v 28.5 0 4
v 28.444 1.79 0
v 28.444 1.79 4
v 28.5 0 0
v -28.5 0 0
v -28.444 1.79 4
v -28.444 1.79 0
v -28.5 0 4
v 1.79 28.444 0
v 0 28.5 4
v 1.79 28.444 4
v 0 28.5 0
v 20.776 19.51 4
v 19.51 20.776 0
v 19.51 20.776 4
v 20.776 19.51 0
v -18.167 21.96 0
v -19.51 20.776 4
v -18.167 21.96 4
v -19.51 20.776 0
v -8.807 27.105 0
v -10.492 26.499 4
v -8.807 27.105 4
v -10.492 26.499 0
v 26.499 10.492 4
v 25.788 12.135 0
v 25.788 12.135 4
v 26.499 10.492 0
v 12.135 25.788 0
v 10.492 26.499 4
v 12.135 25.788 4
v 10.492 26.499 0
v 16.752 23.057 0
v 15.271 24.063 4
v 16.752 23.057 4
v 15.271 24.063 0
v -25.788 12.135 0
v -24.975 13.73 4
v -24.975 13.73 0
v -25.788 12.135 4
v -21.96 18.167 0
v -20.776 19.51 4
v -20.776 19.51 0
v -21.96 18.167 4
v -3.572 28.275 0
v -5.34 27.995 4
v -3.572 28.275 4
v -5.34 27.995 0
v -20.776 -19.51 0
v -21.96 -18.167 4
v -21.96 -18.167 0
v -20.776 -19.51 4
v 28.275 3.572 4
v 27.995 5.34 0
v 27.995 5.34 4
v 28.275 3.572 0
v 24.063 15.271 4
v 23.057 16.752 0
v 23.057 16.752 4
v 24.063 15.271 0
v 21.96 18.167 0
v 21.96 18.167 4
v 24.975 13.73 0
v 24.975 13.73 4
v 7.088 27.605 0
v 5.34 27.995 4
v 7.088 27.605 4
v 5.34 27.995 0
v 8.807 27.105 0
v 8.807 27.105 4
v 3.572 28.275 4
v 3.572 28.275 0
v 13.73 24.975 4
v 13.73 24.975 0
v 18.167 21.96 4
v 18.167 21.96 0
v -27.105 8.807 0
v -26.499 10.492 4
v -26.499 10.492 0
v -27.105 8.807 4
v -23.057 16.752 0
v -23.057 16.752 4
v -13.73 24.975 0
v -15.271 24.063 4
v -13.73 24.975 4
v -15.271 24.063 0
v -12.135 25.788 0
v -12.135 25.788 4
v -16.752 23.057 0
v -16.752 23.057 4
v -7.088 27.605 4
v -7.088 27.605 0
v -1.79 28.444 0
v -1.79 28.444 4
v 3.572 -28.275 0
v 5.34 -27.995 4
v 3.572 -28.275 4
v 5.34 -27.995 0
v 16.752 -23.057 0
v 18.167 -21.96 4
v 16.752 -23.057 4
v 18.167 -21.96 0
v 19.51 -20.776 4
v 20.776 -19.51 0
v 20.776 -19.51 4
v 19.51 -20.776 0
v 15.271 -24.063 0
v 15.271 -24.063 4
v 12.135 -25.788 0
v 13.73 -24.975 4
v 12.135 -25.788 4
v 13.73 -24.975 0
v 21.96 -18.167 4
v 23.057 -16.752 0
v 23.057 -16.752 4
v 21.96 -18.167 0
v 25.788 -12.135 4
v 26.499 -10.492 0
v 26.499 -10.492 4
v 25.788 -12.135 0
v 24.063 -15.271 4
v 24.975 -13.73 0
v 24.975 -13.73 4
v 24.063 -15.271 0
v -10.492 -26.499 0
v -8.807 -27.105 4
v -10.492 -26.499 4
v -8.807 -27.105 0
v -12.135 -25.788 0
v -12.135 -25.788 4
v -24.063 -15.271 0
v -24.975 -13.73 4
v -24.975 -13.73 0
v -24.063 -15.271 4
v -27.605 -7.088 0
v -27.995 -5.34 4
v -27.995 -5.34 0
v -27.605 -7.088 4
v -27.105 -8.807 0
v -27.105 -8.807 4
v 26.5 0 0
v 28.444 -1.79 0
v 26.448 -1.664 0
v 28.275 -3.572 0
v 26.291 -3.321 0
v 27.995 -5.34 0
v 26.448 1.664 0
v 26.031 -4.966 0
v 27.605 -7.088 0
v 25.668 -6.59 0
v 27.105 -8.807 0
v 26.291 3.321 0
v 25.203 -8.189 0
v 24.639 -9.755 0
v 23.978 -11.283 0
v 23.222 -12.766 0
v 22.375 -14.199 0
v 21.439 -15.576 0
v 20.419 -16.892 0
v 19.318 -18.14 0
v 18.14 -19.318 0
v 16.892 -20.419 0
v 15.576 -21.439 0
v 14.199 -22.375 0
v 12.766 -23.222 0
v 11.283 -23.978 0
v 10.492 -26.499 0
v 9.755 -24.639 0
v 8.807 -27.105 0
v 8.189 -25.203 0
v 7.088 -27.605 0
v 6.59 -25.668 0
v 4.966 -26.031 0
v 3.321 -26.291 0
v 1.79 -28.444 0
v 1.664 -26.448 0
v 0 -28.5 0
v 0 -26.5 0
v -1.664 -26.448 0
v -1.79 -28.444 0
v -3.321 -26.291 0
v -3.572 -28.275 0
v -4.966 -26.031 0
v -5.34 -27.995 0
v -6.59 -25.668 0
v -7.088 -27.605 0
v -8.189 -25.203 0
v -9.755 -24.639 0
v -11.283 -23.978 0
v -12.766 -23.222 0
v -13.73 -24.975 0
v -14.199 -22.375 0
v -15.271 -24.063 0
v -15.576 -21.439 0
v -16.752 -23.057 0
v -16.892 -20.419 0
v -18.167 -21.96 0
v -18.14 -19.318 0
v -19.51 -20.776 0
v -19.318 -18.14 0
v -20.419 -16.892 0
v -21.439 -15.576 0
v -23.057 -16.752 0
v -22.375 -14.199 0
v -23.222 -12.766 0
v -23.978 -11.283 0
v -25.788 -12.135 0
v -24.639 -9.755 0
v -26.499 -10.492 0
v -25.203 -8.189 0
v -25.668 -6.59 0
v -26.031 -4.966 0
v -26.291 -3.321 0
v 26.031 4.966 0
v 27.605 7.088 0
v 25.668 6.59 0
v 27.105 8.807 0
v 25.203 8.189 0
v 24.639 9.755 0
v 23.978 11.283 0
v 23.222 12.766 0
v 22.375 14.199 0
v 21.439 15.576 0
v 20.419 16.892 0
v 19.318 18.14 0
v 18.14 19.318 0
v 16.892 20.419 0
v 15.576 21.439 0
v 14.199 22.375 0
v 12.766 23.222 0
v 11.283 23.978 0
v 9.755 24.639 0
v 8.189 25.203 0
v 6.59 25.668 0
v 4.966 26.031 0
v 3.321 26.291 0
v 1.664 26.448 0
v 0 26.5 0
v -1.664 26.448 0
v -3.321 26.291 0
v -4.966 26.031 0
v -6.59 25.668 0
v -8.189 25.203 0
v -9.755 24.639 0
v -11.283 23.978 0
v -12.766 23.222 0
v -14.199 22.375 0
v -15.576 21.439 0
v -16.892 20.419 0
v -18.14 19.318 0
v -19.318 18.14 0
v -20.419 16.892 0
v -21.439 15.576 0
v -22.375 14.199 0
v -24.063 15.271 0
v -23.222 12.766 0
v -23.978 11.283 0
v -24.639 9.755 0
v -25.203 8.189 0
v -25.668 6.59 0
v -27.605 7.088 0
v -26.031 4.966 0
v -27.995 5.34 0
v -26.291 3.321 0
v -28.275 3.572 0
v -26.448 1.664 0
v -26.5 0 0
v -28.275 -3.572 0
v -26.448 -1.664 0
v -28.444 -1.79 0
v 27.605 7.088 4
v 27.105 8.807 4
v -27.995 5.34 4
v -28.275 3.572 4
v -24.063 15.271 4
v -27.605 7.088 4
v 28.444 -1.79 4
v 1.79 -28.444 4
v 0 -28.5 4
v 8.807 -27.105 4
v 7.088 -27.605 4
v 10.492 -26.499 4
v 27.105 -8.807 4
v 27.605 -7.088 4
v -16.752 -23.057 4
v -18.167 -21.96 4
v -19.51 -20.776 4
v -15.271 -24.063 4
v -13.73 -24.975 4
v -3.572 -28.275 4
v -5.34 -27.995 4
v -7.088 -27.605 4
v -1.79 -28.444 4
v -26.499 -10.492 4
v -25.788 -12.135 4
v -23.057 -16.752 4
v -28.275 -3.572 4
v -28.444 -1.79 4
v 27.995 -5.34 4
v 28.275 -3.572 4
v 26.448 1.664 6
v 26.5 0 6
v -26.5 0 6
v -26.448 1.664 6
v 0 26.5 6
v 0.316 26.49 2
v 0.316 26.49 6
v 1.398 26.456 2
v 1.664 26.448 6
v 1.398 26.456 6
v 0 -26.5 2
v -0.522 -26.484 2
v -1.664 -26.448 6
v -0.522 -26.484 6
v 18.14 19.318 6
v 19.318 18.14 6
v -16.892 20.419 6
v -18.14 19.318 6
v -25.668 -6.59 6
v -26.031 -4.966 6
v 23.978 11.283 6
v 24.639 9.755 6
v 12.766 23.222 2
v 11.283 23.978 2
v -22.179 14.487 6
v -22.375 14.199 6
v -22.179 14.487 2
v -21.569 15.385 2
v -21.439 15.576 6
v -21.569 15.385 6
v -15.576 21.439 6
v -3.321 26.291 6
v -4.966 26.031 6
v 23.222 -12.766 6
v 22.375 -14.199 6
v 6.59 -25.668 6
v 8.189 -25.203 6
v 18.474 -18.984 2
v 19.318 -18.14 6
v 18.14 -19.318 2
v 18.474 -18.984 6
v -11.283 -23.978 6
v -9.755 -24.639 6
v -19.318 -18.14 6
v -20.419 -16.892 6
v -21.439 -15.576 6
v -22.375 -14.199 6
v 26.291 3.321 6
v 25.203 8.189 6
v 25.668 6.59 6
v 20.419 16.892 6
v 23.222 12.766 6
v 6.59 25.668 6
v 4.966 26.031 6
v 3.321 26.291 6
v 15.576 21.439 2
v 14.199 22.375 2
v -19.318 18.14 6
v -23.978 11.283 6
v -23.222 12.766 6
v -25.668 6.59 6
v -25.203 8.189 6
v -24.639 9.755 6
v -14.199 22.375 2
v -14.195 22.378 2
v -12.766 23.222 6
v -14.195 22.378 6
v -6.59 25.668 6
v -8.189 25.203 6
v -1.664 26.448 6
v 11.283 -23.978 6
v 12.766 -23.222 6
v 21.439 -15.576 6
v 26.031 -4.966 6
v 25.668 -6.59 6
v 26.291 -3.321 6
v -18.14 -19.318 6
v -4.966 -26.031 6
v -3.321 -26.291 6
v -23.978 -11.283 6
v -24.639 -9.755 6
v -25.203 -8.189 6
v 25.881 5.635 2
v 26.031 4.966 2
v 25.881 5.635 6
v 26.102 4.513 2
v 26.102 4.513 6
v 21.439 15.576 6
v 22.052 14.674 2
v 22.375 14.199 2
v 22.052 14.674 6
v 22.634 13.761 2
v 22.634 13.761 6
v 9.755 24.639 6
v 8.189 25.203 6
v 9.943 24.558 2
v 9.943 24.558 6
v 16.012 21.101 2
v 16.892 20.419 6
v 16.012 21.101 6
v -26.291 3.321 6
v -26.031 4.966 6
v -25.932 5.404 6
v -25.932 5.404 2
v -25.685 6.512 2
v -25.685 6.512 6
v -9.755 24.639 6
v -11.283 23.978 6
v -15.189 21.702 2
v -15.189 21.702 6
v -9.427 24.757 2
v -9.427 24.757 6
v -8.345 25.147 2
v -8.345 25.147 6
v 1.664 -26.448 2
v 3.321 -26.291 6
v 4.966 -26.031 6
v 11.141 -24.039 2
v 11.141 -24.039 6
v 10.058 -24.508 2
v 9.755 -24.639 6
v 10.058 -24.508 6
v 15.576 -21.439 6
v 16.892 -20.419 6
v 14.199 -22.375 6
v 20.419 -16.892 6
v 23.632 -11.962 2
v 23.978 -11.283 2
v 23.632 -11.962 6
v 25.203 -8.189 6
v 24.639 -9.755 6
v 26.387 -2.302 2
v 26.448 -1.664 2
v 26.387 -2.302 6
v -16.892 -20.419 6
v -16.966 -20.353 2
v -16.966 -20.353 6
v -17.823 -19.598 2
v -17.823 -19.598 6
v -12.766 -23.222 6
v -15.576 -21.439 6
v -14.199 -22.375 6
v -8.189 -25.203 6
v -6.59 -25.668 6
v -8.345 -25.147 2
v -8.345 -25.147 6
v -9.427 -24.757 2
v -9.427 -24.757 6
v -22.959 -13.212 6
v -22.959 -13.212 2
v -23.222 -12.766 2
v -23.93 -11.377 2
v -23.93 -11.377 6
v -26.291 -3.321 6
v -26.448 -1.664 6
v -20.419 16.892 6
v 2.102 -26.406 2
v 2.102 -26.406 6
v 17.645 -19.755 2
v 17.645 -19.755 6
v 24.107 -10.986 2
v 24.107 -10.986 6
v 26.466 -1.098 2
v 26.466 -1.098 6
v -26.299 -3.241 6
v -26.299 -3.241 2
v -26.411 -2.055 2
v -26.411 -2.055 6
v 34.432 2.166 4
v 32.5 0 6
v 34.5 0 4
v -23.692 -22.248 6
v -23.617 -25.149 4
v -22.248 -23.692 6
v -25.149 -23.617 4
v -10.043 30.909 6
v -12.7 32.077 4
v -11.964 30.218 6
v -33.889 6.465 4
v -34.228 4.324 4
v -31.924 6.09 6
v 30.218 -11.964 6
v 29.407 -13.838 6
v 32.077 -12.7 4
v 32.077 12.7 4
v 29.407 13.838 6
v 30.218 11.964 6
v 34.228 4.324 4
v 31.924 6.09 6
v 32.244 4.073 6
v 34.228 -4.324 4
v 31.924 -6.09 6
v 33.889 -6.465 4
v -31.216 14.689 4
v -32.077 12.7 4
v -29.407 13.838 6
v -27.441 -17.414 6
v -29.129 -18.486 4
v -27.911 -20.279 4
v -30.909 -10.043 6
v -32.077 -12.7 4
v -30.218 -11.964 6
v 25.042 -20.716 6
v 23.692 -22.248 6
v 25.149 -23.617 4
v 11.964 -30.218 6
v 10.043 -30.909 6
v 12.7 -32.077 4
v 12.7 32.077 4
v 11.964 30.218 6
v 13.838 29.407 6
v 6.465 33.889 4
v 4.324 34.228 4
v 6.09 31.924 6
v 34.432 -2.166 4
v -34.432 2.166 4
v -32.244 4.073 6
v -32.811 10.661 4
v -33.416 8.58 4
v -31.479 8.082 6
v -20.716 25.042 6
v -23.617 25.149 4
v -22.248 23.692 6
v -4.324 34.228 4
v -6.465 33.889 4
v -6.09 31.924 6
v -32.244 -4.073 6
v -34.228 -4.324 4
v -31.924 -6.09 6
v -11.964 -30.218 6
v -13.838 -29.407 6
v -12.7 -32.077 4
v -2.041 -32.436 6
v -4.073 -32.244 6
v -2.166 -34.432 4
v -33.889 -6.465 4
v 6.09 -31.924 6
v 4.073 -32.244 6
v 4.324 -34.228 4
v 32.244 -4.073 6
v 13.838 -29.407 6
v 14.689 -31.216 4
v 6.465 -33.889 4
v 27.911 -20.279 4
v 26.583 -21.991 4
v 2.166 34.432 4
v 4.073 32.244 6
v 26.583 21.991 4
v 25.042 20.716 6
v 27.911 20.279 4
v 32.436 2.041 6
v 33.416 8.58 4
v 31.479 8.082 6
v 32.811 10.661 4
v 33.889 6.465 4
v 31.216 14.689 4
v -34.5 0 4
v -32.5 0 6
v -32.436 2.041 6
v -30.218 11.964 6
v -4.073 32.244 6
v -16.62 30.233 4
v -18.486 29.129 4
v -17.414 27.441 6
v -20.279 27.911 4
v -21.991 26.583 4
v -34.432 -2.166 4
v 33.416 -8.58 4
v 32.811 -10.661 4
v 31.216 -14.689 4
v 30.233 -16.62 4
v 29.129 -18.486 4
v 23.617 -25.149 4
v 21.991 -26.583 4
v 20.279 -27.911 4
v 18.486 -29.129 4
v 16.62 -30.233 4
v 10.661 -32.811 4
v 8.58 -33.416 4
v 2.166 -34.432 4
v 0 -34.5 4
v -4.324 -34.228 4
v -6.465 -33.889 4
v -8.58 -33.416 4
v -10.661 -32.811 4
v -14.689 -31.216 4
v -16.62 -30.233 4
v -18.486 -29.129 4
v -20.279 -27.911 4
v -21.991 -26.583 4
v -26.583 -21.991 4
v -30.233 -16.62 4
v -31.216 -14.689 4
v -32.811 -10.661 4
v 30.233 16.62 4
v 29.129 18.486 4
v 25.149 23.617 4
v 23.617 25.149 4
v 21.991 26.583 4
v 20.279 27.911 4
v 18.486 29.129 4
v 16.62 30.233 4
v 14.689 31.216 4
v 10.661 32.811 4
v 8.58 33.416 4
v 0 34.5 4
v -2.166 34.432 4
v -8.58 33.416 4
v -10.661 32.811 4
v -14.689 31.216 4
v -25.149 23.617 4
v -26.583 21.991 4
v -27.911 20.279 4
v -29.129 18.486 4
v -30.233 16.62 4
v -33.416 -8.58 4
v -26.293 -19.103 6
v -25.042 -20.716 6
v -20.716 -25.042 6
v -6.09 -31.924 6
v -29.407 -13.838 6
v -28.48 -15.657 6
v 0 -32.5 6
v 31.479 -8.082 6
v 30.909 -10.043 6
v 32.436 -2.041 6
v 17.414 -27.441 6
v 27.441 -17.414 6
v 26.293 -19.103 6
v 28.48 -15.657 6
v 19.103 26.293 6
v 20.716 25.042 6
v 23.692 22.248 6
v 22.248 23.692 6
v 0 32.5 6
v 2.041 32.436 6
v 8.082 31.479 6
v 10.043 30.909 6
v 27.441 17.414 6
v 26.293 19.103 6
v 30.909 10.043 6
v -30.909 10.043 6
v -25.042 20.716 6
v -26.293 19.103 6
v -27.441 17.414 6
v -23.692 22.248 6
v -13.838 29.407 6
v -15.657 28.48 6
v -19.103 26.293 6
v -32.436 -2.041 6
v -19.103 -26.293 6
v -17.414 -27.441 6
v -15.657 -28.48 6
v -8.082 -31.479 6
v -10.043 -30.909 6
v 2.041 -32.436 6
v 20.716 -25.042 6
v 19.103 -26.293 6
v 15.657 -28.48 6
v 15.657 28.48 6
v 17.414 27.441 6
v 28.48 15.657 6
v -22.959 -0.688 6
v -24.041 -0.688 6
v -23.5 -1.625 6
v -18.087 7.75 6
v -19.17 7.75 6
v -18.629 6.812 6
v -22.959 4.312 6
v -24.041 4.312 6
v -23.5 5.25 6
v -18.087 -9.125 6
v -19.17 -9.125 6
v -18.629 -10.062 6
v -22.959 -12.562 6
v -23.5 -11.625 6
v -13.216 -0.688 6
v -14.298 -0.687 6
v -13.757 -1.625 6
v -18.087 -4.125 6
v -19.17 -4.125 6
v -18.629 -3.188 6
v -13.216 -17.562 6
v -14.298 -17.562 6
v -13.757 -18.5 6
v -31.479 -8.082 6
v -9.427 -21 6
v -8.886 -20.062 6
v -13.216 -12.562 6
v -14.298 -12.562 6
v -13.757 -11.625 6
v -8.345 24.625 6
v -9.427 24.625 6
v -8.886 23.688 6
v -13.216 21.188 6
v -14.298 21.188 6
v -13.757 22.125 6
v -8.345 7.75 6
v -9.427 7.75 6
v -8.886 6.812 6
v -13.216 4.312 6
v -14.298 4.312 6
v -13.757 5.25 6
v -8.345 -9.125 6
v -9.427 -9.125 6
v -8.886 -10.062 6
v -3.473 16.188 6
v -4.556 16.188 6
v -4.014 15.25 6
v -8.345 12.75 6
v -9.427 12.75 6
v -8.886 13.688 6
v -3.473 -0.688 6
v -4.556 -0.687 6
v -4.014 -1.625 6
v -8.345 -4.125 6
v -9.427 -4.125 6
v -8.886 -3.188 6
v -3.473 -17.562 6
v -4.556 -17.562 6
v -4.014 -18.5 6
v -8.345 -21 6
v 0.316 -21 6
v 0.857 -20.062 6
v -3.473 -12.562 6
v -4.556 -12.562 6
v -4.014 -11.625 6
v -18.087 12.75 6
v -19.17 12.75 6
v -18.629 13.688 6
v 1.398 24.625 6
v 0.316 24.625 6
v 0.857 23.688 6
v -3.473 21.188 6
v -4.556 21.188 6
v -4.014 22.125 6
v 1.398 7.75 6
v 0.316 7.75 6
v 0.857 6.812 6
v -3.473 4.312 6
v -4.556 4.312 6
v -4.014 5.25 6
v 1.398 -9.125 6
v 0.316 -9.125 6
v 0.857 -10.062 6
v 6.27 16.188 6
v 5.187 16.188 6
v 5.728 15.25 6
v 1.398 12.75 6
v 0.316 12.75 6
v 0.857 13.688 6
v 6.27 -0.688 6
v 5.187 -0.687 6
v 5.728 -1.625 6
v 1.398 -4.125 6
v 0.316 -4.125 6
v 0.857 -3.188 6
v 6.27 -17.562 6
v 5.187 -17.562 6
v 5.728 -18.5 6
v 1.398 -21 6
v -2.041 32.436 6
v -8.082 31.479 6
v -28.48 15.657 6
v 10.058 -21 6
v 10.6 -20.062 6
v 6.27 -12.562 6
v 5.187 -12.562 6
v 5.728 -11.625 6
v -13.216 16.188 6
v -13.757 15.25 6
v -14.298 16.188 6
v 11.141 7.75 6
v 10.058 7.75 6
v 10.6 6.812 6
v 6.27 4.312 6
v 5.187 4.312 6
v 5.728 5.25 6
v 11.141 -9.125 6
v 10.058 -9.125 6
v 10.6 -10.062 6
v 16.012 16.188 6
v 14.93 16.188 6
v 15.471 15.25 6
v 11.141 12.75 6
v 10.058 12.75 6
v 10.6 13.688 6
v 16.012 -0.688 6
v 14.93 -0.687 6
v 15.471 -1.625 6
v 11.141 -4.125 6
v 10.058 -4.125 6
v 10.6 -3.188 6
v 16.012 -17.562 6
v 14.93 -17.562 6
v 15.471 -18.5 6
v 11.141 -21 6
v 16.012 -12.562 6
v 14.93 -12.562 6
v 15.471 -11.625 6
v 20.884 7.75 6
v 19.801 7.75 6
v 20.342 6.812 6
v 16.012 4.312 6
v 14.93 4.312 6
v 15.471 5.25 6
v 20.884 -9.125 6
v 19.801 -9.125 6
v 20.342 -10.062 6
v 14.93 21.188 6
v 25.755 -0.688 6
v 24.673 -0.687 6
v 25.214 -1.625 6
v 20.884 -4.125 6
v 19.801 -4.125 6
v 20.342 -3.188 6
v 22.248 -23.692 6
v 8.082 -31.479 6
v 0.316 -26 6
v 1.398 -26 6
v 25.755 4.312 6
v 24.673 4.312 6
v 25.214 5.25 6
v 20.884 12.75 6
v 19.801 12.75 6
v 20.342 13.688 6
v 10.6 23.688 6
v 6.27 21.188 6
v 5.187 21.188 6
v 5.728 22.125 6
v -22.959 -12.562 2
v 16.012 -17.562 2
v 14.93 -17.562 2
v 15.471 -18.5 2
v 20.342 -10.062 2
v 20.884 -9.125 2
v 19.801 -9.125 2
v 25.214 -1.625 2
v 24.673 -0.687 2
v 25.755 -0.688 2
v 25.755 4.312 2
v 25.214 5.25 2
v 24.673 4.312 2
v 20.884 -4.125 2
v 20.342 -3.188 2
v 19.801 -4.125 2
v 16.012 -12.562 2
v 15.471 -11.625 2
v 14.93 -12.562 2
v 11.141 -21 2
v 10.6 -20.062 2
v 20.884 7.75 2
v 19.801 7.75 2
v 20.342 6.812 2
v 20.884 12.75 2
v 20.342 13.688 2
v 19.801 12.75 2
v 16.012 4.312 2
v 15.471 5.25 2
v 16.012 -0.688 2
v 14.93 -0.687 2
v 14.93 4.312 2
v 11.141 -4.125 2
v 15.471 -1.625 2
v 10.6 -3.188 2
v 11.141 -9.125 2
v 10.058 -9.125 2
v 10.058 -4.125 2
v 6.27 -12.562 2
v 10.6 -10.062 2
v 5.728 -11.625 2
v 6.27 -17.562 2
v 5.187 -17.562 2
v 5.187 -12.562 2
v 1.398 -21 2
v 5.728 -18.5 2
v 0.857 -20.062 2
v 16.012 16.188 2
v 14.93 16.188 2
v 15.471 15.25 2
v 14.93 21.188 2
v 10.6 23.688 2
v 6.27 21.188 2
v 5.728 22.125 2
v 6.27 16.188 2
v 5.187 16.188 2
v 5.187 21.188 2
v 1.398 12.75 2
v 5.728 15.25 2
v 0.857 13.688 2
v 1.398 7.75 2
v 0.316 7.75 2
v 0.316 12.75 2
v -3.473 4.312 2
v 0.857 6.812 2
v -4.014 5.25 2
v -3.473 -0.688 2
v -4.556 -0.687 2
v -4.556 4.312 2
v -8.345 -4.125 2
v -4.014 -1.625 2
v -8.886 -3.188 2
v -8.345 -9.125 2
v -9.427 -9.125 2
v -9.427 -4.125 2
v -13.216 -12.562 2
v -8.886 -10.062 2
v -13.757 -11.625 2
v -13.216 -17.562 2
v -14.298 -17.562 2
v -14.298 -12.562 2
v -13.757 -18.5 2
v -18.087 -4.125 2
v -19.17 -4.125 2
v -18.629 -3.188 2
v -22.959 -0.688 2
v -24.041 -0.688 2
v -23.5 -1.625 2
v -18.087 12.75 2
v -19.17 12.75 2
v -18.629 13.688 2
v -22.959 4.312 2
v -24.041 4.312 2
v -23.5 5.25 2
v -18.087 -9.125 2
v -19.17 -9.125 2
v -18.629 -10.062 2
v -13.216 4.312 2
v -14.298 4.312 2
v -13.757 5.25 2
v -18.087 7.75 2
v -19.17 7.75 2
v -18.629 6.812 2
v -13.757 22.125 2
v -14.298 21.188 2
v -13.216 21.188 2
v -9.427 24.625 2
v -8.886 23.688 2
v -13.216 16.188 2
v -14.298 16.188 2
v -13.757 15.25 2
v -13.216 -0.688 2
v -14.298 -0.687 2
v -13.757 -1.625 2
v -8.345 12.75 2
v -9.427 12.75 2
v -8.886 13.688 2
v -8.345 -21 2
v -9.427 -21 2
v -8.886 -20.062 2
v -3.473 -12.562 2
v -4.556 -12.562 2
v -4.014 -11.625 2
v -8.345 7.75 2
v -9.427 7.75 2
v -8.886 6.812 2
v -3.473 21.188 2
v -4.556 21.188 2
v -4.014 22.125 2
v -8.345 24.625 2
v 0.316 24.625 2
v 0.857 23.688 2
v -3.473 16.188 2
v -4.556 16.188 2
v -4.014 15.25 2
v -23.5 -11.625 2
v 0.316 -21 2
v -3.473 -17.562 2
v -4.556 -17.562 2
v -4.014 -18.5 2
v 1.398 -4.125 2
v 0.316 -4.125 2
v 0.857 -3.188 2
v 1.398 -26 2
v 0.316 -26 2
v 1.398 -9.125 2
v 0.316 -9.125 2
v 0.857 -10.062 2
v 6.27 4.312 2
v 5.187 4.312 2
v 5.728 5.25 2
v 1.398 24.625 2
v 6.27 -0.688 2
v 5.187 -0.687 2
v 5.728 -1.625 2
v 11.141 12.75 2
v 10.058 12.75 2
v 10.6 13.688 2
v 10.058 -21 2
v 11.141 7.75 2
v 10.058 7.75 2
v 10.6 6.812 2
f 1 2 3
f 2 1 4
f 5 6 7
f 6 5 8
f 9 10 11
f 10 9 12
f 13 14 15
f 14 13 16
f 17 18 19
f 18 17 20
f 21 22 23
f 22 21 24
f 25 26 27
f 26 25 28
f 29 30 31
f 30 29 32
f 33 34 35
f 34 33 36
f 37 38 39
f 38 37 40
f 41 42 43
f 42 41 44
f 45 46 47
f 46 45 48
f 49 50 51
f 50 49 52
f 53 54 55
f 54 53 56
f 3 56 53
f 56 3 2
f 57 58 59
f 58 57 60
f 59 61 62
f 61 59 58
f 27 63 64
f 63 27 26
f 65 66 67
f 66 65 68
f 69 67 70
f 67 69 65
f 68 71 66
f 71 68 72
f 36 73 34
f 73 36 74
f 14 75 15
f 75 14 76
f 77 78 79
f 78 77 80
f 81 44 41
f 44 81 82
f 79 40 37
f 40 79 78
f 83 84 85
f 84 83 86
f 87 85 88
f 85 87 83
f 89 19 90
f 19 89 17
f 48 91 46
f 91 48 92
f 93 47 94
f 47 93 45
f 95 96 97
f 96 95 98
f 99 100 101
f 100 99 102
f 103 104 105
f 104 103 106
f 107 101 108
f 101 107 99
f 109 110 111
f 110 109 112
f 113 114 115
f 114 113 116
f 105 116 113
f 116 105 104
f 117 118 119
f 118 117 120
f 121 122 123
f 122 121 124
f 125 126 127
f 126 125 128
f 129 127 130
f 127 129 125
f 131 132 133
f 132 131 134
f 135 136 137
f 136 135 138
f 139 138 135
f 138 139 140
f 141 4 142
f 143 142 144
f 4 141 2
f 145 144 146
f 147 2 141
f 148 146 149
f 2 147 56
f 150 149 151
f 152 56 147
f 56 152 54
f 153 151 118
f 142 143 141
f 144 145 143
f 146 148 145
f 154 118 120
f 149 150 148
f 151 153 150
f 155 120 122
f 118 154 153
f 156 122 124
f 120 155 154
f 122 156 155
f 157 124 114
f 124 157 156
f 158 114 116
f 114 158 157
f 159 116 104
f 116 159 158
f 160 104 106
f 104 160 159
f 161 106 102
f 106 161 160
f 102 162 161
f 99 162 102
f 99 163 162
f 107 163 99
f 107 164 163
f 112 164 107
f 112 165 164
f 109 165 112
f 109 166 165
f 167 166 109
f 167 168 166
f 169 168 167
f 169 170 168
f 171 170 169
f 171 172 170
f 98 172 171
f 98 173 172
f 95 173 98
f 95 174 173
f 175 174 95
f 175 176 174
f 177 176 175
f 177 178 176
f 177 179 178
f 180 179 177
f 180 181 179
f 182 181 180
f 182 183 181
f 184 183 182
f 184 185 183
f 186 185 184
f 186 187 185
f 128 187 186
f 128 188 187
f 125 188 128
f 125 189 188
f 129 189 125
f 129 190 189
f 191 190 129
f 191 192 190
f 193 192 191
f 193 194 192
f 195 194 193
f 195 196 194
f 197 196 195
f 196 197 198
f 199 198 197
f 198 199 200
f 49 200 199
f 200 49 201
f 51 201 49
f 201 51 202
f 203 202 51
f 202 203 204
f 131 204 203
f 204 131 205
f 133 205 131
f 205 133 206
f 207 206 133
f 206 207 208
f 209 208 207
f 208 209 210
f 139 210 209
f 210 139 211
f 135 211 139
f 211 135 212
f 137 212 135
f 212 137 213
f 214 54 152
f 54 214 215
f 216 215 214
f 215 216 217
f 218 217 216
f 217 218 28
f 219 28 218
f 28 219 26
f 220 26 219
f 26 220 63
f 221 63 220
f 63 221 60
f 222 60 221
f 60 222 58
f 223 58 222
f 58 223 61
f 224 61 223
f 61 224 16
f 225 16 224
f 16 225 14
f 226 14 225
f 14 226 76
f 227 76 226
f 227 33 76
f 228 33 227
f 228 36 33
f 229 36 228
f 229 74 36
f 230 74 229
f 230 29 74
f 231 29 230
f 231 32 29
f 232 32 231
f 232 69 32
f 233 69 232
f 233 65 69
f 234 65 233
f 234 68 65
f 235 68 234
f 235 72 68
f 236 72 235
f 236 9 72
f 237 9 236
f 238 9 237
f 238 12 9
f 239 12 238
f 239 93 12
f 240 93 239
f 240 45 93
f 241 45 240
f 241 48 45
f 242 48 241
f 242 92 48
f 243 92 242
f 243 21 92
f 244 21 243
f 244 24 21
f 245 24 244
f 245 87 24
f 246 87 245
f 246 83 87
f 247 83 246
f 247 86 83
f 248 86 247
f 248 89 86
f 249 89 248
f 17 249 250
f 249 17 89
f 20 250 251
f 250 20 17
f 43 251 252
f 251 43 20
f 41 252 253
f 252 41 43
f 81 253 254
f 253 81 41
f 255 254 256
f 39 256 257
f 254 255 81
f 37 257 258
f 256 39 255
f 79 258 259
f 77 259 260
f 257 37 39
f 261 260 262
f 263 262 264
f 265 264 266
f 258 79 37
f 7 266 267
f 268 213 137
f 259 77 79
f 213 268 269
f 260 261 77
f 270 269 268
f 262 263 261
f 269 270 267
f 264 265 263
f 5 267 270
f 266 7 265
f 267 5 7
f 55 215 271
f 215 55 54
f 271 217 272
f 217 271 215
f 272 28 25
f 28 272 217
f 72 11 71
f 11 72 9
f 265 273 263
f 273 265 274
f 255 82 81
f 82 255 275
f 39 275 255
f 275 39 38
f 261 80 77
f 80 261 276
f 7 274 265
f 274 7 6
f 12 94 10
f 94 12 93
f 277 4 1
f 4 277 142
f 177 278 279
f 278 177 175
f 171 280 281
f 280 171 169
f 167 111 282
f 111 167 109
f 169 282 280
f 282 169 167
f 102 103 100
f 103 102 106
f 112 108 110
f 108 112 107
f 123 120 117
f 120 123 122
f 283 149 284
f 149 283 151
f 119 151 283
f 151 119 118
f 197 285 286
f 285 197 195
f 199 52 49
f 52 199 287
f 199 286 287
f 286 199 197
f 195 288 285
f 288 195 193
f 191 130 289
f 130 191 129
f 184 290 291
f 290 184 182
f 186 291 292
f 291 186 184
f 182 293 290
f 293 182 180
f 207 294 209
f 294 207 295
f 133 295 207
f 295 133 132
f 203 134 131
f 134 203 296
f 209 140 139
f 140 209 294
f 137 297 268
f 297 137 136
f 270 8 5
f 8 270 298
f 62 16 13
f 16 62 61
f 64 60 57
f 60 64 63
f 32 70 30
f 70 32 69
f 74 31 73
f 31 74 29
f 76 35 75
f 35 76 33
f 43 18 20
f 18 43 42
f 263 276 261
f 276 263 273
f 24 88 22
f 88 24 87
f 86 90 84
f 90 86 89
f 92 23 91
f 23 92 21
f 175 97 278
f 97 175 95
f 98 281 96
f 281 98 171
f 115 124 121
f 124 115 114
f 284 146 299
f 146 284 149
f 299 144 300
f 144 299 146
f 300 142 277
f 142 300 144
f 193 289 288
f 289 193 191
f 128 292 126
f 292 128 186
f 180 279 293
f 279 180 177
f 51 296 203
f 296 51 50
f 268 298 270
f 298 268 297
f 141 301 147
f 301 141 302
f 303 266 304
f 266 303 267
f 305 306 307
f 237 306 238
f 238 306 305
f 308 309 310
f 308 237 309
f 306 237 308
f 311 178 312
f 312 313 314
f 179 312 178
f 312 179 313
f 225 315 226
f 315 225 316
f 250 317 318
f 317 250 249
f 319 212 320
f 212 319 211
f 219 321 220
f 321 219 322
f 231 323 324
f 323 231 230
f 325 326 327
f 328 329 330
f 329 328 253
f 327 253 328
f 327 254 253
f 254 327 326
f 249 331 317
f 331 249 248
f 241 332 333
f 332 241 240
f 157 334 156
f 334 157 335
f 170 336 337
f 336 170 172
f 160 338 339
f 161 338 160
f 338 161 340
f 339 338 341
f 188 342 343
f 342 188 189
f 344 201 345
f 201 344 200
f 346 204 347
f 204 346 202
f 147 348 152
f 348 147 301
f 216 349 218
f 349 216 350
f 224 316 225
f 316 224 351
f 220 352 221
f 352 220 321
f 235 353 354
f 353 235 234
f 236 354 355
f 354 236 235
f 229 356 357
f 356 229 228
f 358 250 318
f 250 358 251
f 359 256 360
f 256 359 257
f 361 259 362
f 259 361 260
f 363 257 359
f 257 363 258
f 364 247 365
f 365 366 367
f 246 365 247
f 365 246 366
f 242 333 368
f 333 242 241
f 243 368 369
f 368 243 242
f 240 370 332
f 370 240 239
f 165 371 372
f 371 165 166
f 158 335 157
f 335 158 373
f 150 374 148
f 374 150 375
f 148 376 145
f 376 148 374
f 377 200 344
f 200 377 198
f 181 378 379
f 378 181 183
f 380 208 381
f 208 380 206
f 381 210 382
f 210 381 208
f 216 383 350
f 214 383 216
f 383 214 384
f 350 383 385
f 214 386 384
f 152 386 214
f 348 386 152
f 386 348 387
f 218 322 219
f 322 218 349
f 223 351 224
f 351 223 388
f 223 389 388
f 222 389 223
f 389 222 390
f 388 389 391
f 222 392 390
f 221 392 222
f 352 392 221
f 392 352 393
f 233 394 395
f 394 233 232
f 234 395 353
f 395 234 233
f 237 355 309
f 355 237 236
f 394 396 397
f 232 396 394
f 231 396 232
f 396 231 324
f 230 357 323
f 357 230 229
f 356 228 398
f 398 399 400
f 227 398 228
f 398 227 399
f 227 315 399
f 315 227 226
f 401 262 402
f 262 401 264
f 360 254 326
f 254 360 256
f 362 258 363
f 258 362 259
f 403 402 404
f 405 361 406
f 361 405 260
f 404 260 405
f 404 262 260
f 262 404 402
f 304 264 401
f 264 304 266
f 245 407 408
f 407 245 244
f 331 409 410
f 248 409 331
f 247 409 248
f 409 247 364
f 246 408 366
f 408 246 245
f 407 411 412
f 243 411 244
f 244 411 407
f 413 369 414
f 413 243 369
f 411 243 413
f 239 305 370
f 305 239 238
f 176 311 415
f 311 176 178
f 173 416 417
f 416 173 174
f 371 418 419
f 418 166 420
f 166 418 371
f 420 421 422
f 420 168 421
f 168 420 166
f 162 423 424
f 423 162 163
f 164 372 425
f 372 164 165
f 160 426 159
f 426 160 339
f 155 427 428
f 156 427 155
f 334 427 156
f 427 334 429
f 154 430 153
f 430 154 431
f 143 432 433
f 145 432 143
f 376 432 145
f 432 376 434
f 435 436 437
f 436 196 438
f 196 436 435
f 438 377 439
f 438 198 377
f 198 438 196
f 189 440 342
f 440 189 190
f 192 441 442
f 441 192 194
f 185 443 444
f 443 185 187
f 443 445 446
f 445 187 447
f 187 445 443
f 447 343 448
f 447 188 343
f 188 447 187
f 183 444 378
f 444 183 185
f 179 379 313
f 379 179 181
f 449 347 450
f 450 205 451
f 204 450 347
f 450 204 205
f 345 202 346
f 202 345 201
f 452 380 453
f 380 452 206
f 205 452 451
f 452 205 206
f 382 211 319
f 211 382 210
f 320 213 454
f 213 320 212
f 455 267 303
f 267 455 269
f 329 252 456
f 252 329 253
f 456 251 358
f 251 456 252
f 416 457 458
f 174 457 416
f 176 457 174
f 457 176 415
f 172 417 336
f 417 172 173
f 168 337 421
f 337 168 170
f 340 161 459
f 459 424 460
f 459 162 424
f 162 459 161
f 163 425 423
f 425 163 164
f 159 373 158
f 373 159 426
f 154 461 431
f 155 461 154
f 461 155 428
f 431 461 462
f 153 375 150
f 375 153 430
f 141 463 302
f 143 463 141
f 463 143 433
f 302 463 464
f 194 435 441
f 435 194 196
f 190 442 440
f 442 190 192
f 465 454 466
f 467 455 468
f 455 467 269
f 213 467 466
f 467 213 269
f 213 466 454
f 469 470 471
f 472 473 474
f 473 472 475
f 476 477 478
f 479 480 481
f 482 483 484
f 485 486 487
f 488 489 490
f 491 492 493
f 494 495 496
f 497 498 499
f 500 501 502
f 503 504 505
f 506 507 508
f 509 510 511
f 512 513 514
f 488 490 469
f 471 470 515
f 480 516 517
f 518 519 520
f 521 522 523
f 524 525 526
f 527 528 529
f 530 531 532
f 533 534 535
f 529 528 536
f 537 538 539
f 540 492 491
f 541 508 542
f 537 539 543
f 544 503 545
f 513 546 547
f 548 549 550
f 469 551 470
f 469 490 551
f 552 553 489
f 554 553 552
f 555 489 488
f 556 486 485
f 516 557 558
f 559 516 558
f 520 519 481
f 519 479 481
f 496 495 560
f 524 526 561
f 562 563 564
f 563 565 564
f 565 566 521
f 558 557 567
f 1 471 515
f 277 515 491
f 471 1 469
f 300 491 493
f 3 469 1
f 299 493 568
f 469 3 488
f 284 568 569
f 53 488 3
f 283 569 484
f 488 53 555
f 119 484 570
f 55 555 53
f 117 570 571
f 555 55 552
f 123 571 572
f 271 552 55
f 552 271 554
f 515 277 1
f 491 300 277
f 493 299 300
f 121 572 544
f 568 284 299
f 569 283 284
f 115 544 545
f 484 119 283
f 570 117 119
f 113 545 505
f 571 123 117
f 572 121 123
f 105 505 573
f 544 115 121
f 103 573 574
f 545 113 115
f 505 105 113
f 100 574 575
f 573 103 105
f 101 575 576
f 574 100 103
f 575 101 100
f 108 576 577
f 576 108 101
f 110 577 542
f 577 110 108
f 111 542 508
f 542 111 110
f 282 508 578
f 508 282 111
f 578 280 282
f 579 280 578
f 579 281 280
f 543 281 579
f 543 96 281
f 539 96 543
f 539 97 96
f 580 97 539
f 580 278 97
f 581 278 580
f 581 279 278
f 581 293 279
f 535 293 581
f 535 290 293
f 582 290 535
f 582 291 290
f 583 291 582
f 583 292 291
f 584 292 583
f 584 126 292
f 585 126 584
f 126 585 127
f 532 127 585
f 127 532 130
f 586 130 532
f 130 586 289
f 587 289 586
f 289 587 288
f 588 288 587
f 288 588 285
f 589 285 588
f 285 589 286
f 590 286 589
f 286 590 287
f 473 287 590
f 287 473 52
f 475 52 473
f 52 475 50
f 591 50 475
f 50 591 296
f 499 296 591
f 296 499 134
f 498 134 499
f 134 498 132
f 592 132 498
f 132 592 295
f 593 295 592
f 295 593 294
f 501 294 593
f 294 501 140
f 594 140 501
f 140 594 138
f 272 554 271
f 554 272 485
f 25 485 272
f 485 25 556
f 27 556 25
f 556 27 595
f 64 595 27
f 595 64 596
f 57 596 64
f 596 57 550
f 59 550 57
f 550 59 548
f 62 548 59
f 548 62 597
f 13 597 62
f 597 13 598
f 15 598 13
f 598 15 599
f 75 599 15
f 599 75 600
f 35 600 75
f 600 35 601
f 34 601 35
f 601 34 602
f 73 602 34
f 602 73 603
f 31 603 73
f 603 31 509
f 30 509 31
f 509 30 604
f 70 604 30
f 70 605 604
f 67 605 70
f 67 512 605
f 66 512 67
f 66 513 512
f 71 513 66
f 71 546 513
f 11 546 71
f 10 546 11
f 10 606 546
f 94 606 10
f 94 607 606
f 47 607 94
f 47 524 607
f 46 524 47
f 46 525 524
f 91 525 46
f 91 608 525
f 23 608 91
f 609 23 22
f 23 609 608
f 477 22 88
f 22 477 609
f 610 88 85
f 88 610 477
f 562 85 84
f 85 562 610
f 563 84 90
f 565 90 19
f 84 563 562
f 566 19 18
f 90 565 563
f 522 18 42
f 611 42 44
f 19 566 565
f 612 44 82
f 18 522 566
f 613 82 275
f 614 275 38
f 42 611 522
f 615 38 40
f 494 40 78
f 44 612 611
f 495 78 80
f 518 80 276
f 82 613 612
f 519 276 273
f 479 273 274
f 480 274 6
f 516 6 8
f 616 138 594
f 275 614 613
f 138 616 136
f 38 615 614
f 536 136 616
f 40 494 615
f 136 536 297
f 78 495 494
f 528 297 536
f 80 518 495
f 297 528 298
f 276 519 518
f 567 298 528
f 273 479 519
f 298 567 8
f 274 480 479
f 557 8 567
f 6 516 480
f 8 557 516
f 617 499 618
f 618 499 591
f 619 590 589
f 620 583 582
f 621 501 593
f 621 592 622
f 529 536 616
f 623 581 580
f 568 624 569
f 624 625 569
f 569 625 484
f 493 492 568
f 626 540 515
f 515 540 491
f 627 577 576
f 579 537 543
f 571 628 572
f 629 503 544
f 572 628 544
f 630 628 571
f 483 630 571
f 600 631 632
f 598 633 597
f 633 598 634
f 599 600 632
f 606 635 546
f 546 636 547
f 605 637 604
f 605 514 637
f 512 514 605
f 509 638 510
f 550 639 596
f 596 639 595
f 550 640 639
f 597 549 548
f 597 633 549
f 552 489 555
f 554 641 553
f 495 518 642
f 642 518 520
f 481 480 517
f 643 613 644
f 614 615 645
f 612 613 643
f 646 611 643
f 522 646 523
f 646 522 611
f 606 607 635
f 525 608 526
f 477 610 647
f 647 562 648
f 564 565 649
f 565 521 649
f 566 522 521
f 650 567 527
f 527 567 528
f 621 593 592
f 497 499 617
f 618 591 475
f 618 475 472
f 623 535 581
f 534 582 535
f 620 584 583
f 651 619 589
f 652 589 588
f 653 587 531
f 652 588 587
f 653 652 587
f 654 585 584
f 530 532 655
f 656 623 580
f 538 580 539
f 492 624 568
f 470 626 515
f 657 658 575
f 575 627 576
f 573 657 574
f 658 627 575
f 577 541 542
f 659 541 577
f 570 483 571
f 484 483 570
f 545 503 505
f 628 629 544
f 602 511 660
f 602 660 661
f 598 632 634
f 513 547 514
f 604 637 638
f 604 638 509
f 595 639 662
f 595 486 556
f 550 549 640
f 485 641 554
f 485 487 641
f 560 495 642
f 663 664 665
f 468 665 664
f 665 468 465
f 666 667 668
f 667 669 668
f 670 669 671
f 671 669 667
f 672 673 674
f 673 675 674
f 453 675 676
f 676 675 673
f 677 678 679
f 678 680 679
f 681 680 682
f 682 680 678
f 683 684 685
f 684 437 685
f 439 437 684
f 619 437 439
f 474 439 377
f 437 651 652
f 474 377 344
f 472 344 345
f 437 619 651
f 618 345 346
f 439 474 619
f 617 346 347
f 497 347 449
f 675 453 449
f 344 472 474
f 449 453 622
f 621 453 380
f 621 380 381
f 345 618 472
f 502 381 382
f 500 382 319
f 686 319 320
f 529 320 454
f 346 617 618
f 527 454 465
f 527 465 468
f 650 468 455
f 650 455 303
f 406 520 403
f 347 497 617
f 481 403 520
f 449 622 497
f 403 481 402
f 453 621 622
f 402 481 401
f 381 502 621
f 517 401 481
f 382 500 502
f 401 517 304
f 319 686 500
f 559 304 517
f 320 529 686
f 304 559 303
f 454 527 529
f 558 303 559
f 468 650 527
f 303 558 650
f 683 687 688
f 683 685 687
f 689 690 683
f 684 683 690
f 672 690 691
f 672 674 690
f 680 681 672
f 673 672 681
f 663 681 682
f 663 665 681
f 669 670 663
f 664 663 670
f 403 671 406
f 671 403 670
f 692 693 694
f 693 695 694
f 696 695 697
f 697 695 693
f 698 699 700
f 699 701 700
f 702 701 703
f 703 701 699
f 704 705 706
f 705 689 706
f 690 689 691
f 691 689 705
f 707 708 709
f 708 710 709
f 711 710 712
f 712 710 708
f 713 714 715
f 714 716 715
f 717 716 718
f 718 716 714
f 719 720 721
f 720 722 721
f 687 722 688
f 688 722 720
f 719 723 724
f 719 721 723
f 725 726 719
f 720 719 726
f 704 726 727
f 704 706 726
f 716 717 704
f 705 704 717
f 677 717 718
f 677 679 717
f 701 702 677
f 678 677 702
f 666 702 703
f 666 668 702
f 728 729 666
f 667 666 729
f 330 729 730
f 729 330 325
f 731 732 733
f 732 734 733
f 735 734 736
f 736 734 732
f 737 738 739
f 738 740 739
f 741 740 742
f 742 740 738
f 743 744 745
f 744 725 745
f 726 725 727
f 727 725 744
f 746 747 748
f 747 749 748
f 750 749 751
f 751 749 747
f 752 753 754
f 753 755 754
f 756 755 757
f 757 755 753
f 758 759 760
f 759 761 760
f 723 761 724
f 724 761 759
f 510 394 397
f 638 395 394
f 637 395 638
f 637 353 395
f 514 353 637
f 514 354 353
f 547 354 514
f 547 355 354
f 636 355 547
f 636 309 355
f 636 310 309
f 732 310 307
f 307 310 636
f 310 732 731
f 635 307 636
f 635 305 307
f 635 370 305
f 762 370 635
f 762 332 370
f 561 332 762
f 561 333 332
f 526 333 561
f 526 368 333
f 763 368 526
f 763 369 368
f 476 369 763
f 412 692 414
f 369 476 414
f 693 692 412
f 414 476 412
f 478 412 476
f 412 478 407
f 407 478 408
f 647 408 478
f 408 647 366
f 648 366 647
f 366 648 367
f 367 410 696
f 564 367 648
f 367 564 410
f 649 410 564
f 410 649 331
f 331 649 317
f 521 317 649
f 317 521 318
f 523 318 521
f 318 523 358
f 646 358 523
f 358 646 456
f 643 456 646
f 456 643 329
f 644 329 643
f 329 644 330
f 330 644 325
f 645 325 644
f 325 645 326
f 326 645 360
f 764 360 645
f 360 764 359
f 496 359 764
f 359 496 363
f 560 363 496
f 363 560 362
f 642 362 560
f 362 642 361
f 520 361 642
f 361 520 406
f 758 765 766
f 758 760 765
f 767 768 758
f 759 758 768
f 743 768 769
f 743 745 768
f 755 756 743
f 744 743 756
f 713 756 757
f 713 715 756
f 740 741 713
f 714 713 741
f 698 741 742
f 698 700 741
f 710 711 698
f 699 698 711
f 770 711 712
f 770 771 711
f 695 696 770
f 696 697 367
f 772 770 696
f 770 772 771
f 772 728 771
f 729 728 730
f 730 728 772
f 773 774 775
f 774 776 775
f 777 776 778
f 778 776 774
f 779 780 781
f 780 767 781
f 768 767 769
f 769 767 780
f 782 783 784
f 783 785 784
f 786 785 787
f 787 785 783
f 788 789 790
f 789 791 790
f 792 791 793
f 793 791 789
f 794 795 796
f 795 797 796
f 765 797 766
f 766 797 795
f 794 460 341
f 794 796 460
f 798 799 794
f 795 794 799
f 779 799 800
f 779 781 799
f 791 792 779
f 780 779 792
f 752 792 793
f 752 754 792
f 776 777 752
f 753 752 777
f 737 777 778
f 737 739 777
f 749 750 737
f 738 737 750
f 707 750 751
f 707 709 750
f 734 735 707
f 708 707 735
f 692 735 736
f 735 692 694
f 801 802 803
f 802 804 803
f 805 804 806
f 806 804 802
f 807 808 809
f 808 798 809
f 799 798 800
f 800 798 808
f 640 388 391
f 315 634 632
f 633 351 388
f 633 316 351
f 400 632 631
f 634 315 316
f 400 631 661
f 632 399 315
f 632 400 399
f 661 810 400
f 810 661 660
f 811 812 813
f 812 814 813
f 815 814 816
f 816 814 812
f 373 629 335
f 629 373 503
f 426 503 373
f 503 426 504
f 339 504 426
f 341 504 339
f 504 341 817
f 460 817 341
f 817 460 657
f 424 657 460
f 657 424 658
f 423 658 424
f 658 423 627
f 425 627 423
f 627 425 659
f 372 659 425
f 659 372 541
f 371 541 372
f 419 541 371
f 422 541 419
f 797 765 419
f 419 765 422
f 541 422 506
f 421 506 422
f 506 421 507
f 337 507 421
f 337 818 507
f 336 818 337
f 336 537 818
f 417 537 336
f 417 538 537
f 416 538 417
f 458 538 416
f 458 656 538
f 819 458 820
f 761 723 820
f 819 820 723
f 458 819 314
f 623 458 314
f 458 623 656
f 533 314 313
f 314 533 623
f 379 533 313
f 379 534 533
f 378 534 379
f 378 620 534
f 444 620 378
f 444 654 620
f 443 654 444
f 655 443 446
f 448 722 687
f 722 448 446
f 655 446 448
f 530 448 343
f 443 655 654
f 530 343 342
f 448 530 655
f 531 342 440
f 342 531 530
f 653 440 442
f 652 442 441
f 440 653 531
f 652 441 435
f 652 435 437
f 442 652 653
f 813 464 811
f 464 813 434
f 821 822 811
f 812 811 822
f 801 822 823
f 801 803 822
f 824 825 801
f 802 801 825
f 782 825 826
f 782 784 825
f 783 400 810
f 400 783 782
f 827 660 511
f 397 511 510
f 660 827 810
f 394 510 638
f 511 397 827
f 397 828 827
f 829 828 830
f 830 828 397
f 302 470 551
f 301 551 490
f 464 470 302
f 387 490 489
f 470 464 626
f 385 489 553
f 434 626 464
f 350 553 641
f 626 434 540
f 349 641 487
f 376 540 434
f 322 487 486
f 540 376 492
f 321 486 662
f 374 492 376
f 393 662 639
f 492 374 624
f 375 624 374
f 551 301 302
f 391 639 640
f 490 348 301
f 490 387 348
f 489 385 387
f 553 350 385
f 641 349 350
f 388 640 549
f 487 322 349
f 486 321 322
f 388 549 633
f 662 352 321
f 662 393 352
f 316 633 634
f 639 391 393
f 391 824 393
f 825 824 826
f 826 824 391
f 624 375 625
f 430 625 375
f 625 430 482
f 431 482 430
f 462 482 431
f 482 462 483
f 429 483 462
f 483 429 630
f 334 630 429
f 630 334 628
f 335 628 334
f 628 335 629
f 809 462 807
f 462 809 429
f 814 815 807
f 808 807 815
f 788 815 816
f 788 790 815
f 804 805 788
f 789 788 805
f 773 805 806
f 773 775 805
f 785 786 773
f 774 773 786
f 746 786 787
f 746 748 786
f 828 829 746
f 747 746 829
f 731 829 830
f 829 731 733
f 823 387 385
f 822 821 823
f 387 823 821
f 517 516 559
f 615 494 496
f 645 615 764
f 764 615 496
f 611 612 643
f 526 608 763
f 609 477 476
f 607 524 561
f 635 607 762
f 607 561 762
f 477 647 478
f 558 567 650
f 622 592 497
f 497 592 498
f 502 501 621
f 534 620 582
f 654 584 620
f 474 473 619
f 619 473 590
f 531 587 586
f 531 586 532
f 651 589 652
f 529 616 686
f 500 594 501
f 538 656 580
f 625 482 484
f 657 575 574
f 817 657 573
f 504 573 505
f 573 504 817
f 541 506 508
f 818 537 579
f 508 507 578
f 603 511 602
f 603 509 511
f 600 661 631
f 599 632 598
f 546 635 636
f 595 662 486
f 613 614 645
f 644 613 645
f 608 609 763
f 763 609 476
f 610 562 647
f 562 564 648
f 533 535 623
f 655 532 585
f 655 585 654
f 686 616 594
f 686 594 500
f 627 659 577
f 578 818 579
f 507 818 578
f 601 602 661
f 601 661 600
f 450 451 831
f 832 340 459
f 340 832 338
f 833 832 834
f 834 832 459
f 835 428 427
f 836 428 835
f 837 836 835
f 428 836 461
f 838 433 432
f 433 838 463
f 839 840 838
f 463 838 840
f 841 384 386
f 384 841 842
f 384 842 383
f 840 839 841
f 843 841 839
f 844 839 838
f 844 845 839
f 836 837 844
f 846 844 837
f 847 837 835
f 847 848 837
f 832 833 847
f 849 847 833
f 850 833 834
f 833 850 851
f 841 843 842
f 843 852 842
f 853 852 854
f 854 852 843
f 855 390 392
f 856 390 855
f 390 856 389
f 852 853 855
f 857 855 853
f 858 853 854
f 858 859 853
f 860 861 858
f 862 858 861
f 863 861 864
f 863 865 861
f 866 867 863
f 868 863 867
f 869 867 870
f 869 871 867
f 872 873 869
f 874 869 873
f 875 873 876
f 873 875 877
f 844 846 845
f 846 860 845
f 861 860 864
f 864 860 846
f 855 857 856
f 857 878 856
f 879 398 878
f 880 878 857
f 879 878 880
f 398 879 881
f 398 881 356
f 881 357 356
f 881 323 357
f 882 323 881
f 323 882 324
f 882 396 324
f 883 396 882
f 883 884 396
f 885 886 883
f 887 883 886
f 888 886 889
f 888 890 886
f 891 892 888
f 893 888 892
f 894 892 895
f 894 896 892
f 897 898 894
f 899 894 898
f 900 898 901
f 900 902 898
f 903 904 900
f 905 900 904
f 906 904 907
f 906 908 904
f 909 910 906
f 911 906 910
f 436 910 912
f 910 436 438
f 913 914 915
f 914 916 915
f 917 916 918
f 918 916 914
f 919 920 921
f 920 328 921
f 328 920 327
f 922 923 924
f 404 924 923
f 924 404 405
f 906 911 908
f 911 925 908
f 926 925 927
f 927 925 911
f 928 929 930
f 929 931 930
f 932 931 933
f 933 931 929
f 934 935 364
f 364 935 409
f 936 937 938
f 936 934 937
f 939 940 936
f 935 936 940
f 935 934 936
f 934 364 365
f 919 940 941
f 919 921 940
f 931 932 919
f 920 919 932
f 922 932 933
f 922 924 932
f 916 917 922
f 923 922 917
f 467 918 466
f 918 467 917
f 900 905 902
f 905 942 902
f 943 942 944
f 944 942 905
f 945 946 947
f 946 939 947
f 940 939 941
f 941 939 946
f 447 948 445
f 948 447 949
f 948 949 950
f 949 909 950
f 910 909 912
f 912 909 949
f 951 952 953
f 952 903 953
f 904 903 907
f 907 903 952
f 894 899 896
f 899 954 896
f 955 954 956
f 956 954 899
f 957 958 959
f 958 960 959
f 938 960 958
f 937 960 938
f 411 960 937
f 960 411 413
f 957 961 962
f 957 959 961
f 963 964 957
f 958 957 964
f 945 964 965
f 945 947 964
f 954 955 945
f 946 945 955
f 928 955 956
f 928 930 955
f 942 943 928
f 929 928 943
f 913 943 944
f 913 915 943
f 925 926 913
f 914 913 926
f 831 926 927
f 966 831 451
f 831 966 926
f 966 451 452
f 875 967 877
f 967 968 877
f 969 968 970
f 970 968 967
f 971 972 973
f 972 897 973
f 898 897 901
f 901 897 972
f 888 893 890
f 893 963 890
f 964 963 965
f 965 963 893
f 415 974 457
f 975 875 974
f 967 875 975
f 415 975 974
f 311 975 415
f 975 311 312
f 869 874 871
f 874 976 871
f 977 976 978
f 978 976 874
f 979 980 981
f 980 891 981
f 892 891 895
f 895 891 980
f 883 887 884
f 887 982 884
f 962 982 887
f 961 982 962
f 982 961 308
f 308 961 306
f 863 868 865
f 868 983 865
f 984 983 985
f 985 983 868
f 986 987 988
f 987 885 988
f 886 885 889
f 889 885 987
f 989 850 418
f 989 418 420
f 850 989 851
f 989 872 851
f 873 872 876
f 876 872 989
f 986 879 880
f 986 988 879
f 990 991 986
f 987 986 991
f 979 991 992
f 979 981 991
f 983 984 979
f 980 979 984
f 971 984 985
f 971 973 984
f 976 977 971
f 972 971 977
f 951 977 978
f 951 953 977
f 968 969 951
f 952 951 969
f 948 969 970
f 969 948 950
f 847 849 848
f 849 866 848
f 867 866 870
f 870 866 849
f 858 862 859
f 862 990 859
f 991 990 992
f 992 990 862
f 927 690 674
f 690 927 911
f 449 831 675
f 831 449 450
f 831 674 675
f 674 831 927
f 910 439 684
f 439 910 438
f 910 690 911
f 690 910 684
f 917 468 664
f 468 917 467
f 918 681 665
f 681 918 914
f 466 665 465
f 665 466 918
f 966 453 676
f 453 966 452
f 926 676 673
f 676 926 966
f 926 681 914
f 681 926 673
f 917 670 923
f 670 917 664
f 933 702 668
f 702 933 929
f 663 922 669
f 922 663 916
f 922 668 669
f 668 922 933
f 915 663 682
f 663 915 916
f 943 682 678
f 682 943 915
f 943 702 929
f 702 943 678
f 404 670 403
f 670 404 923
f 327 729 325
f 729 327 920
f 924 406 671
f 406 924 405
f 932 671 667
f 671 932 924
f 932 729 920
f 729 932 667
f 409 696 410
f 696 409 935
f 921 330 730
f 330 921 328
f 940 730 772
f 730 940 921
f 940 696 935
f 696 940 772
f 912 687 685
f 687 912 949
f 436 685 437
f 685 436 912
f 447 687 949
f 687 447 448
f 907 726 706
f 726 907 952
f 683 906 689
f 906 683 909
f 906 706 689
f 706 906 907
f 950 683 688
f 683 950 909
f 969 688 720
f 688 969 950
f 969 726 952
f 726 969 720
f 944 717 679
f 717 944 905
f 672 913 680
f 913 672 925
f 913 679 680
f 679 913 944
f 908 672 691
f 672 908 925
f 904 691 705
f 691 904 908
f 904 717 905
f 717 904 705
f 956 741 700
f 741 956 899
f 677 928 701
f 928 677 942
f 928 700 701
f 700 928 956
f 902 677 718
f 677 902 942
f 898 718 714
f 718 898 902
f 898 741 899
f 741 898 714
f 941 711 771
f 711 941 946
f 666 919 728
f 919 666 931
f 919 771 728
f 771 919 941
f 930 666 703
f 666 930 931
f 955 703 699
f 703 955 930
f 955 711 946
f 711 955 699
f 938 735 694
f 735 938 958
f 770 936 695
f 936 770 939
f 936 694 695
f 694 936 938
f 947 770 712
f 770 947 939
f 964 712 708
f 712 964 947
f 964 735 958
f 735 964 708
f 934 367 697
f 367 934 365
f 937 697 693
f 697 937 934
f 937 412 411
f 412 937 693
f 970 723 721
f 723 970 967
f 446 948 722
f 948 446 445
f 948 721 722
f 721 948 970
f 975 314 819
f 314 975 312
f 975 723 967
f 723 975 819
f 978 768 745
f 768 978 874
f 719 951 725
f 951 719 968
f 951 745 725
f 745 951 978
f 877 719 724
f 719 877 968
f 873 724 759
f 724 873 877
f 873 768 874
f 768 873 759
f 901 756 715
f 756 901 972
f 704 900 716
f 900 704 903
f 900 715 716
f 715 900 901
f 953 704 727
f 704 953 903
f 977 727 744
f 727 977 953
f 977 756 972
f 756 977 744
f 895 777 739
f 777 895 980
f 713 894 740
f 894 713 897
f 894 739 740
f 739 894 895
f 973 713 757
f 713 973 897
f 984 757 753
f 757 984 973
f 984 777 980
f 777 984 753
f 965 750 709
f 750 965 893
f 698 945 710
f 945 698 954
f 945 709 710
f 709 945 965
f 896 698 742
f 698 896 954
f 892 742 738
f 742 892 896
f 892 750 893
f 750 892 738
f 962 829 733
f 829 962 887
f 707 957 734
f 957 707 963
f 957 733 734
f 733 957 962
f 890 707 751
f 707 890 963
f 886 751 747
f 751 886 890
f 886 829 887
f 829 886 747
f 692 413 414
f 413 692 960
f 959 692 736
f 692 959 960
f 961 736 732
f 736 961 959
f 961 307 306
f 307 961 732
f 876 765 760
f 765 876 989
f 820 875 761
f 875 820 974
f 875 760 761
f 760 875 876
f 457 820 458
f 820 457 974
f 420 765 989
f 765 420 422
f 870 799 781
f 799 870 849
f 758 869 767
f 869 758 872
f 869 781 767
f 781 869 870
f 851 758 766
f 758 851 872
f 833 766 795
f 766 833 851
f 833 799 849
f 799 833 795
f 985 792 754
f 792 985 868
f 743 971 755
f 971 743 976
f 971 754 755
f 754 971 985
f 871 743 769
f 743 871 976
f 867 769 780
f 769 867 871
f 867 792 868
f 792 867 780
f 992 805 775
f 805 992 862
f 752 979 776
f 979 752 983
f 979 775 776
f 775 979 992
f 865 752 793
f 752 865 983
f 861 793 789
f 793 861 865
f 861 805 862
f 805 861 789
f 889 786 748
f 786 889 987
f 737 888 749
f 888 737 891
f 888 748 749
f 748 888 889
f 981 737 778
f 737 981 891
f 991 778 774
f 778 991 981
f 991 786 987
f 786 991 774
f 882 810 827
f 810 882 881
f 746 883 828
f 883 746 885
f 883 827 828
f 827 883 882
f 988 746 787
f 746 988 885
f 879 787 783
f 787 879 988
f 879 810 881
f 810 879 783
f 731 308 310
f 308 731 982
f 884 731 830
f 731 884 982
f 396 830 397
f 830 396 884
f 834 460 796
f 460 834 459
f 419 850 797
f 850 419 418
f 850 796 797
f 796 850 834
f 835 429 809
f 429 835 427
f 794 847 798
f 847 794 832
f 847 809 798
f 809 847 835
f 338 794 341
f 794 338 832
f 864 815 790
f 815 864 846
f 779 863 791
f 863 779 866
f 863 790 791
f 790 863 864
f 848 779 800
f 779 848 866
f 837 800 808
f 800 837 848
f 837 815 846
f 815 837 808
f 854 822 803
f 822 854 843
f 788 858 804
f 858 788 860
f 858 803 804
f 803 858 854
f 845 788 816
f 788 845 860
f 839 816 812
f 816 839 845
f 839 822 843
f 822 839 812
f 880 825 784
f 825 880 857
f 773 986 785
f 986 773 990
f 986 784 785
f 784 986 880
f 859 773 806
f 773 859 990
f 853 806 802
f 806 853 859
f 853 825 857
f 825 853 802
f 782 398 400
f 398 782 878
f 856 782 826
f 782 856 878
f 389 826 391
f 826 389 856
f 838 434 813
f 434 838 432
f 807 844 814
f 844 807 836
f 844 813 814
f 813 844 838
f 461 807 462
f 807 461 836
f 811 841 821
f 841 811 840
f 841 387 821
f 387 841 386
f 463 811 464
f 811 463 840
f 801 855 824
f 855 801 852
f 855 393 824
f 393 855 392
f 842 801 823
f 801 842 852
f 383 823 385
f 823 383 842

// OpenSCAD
// file: ../modules/hex_grid_v02.scad
module hex(hole, wall, thick){
    hole = hole;
    wall = wall;
    difference(){
        rotate([0, 0, 30]) cylinder(d = (hole + wall), h = thick, $fn = 6);
        translate([0, 0, -0.1]) rotate([0, 0, 30]) cylinder(d = hole, h = thick + 0.2, $fn = 6);
    }
}



module hexgrid(box, holediameter, wallthickness) {
    a = (holediameter + (wallthickness/2))*sin(60);
    for(x = [holediameter/2: a: box[0]]) {
        for(y = [holediameter/2: 2*a*sin(60): box[1]]) {
            translate([x, y, 0]) hex(holediameter, wallthickness, box[2]);
            translate([x + a*cos(60), y + a*sin(60), 0]) hex(holediameter, wallthickness, box[2]);

        }
    }
        
}

// first arg is vector that defines the bounding box, length, width, height
// second arg in the 'diameter' of the holes. In OpenScad, this refers to the corner-to-corner diameter, not flat-to-flat
// this diameter is 2/sqrt(3) times larger than flat to flat
// third arg is wall thickness.  This also is measured that the corners, not the flats. 

hexgrid([25, 25, 1.5], 1, 0.5);


echo(2/sqrt(3));
// main file
$fn = 100;

id = 57; // inner diameter

use <./../modules/hex_grid_v02.scad>;

difference() {
    cylinder(h = 5, r = id / 2);
    translate([0, 0, -1])
    cylinder(h = 7, r = id / 2 - 2);
}

color("cyan")
translate([0, 0, 4])
difference() {
    cylinder(h = 2, r1 = id / 2 + 6, r2 = id / 2 + 4);
    translate([0, 0, -1])
    cylinder(h = 4, r = id / 2 - 2);
}

translate([0, 0, +2])
hexcircle(id / 2);

module hexcircle(r) {

    module hexcircle_frame(e, h) {
        difference() {
            translate([-r - e / 2, -r - e / 2, 0])
            cube([r * 2 + e, r * 2 + e, h]);
            translate([0, 0, -1])
            cylinder(h = h + 2, r = r);
        }
    }

    difference() {
        translate([-r, -r, 0])
        hexgrid([r * 2, r * 2, 4], 10, 2.5);
        
        color("red")
        translate([0, 0, -1])
        hexcircle_frame(200, 6);
    }
}
